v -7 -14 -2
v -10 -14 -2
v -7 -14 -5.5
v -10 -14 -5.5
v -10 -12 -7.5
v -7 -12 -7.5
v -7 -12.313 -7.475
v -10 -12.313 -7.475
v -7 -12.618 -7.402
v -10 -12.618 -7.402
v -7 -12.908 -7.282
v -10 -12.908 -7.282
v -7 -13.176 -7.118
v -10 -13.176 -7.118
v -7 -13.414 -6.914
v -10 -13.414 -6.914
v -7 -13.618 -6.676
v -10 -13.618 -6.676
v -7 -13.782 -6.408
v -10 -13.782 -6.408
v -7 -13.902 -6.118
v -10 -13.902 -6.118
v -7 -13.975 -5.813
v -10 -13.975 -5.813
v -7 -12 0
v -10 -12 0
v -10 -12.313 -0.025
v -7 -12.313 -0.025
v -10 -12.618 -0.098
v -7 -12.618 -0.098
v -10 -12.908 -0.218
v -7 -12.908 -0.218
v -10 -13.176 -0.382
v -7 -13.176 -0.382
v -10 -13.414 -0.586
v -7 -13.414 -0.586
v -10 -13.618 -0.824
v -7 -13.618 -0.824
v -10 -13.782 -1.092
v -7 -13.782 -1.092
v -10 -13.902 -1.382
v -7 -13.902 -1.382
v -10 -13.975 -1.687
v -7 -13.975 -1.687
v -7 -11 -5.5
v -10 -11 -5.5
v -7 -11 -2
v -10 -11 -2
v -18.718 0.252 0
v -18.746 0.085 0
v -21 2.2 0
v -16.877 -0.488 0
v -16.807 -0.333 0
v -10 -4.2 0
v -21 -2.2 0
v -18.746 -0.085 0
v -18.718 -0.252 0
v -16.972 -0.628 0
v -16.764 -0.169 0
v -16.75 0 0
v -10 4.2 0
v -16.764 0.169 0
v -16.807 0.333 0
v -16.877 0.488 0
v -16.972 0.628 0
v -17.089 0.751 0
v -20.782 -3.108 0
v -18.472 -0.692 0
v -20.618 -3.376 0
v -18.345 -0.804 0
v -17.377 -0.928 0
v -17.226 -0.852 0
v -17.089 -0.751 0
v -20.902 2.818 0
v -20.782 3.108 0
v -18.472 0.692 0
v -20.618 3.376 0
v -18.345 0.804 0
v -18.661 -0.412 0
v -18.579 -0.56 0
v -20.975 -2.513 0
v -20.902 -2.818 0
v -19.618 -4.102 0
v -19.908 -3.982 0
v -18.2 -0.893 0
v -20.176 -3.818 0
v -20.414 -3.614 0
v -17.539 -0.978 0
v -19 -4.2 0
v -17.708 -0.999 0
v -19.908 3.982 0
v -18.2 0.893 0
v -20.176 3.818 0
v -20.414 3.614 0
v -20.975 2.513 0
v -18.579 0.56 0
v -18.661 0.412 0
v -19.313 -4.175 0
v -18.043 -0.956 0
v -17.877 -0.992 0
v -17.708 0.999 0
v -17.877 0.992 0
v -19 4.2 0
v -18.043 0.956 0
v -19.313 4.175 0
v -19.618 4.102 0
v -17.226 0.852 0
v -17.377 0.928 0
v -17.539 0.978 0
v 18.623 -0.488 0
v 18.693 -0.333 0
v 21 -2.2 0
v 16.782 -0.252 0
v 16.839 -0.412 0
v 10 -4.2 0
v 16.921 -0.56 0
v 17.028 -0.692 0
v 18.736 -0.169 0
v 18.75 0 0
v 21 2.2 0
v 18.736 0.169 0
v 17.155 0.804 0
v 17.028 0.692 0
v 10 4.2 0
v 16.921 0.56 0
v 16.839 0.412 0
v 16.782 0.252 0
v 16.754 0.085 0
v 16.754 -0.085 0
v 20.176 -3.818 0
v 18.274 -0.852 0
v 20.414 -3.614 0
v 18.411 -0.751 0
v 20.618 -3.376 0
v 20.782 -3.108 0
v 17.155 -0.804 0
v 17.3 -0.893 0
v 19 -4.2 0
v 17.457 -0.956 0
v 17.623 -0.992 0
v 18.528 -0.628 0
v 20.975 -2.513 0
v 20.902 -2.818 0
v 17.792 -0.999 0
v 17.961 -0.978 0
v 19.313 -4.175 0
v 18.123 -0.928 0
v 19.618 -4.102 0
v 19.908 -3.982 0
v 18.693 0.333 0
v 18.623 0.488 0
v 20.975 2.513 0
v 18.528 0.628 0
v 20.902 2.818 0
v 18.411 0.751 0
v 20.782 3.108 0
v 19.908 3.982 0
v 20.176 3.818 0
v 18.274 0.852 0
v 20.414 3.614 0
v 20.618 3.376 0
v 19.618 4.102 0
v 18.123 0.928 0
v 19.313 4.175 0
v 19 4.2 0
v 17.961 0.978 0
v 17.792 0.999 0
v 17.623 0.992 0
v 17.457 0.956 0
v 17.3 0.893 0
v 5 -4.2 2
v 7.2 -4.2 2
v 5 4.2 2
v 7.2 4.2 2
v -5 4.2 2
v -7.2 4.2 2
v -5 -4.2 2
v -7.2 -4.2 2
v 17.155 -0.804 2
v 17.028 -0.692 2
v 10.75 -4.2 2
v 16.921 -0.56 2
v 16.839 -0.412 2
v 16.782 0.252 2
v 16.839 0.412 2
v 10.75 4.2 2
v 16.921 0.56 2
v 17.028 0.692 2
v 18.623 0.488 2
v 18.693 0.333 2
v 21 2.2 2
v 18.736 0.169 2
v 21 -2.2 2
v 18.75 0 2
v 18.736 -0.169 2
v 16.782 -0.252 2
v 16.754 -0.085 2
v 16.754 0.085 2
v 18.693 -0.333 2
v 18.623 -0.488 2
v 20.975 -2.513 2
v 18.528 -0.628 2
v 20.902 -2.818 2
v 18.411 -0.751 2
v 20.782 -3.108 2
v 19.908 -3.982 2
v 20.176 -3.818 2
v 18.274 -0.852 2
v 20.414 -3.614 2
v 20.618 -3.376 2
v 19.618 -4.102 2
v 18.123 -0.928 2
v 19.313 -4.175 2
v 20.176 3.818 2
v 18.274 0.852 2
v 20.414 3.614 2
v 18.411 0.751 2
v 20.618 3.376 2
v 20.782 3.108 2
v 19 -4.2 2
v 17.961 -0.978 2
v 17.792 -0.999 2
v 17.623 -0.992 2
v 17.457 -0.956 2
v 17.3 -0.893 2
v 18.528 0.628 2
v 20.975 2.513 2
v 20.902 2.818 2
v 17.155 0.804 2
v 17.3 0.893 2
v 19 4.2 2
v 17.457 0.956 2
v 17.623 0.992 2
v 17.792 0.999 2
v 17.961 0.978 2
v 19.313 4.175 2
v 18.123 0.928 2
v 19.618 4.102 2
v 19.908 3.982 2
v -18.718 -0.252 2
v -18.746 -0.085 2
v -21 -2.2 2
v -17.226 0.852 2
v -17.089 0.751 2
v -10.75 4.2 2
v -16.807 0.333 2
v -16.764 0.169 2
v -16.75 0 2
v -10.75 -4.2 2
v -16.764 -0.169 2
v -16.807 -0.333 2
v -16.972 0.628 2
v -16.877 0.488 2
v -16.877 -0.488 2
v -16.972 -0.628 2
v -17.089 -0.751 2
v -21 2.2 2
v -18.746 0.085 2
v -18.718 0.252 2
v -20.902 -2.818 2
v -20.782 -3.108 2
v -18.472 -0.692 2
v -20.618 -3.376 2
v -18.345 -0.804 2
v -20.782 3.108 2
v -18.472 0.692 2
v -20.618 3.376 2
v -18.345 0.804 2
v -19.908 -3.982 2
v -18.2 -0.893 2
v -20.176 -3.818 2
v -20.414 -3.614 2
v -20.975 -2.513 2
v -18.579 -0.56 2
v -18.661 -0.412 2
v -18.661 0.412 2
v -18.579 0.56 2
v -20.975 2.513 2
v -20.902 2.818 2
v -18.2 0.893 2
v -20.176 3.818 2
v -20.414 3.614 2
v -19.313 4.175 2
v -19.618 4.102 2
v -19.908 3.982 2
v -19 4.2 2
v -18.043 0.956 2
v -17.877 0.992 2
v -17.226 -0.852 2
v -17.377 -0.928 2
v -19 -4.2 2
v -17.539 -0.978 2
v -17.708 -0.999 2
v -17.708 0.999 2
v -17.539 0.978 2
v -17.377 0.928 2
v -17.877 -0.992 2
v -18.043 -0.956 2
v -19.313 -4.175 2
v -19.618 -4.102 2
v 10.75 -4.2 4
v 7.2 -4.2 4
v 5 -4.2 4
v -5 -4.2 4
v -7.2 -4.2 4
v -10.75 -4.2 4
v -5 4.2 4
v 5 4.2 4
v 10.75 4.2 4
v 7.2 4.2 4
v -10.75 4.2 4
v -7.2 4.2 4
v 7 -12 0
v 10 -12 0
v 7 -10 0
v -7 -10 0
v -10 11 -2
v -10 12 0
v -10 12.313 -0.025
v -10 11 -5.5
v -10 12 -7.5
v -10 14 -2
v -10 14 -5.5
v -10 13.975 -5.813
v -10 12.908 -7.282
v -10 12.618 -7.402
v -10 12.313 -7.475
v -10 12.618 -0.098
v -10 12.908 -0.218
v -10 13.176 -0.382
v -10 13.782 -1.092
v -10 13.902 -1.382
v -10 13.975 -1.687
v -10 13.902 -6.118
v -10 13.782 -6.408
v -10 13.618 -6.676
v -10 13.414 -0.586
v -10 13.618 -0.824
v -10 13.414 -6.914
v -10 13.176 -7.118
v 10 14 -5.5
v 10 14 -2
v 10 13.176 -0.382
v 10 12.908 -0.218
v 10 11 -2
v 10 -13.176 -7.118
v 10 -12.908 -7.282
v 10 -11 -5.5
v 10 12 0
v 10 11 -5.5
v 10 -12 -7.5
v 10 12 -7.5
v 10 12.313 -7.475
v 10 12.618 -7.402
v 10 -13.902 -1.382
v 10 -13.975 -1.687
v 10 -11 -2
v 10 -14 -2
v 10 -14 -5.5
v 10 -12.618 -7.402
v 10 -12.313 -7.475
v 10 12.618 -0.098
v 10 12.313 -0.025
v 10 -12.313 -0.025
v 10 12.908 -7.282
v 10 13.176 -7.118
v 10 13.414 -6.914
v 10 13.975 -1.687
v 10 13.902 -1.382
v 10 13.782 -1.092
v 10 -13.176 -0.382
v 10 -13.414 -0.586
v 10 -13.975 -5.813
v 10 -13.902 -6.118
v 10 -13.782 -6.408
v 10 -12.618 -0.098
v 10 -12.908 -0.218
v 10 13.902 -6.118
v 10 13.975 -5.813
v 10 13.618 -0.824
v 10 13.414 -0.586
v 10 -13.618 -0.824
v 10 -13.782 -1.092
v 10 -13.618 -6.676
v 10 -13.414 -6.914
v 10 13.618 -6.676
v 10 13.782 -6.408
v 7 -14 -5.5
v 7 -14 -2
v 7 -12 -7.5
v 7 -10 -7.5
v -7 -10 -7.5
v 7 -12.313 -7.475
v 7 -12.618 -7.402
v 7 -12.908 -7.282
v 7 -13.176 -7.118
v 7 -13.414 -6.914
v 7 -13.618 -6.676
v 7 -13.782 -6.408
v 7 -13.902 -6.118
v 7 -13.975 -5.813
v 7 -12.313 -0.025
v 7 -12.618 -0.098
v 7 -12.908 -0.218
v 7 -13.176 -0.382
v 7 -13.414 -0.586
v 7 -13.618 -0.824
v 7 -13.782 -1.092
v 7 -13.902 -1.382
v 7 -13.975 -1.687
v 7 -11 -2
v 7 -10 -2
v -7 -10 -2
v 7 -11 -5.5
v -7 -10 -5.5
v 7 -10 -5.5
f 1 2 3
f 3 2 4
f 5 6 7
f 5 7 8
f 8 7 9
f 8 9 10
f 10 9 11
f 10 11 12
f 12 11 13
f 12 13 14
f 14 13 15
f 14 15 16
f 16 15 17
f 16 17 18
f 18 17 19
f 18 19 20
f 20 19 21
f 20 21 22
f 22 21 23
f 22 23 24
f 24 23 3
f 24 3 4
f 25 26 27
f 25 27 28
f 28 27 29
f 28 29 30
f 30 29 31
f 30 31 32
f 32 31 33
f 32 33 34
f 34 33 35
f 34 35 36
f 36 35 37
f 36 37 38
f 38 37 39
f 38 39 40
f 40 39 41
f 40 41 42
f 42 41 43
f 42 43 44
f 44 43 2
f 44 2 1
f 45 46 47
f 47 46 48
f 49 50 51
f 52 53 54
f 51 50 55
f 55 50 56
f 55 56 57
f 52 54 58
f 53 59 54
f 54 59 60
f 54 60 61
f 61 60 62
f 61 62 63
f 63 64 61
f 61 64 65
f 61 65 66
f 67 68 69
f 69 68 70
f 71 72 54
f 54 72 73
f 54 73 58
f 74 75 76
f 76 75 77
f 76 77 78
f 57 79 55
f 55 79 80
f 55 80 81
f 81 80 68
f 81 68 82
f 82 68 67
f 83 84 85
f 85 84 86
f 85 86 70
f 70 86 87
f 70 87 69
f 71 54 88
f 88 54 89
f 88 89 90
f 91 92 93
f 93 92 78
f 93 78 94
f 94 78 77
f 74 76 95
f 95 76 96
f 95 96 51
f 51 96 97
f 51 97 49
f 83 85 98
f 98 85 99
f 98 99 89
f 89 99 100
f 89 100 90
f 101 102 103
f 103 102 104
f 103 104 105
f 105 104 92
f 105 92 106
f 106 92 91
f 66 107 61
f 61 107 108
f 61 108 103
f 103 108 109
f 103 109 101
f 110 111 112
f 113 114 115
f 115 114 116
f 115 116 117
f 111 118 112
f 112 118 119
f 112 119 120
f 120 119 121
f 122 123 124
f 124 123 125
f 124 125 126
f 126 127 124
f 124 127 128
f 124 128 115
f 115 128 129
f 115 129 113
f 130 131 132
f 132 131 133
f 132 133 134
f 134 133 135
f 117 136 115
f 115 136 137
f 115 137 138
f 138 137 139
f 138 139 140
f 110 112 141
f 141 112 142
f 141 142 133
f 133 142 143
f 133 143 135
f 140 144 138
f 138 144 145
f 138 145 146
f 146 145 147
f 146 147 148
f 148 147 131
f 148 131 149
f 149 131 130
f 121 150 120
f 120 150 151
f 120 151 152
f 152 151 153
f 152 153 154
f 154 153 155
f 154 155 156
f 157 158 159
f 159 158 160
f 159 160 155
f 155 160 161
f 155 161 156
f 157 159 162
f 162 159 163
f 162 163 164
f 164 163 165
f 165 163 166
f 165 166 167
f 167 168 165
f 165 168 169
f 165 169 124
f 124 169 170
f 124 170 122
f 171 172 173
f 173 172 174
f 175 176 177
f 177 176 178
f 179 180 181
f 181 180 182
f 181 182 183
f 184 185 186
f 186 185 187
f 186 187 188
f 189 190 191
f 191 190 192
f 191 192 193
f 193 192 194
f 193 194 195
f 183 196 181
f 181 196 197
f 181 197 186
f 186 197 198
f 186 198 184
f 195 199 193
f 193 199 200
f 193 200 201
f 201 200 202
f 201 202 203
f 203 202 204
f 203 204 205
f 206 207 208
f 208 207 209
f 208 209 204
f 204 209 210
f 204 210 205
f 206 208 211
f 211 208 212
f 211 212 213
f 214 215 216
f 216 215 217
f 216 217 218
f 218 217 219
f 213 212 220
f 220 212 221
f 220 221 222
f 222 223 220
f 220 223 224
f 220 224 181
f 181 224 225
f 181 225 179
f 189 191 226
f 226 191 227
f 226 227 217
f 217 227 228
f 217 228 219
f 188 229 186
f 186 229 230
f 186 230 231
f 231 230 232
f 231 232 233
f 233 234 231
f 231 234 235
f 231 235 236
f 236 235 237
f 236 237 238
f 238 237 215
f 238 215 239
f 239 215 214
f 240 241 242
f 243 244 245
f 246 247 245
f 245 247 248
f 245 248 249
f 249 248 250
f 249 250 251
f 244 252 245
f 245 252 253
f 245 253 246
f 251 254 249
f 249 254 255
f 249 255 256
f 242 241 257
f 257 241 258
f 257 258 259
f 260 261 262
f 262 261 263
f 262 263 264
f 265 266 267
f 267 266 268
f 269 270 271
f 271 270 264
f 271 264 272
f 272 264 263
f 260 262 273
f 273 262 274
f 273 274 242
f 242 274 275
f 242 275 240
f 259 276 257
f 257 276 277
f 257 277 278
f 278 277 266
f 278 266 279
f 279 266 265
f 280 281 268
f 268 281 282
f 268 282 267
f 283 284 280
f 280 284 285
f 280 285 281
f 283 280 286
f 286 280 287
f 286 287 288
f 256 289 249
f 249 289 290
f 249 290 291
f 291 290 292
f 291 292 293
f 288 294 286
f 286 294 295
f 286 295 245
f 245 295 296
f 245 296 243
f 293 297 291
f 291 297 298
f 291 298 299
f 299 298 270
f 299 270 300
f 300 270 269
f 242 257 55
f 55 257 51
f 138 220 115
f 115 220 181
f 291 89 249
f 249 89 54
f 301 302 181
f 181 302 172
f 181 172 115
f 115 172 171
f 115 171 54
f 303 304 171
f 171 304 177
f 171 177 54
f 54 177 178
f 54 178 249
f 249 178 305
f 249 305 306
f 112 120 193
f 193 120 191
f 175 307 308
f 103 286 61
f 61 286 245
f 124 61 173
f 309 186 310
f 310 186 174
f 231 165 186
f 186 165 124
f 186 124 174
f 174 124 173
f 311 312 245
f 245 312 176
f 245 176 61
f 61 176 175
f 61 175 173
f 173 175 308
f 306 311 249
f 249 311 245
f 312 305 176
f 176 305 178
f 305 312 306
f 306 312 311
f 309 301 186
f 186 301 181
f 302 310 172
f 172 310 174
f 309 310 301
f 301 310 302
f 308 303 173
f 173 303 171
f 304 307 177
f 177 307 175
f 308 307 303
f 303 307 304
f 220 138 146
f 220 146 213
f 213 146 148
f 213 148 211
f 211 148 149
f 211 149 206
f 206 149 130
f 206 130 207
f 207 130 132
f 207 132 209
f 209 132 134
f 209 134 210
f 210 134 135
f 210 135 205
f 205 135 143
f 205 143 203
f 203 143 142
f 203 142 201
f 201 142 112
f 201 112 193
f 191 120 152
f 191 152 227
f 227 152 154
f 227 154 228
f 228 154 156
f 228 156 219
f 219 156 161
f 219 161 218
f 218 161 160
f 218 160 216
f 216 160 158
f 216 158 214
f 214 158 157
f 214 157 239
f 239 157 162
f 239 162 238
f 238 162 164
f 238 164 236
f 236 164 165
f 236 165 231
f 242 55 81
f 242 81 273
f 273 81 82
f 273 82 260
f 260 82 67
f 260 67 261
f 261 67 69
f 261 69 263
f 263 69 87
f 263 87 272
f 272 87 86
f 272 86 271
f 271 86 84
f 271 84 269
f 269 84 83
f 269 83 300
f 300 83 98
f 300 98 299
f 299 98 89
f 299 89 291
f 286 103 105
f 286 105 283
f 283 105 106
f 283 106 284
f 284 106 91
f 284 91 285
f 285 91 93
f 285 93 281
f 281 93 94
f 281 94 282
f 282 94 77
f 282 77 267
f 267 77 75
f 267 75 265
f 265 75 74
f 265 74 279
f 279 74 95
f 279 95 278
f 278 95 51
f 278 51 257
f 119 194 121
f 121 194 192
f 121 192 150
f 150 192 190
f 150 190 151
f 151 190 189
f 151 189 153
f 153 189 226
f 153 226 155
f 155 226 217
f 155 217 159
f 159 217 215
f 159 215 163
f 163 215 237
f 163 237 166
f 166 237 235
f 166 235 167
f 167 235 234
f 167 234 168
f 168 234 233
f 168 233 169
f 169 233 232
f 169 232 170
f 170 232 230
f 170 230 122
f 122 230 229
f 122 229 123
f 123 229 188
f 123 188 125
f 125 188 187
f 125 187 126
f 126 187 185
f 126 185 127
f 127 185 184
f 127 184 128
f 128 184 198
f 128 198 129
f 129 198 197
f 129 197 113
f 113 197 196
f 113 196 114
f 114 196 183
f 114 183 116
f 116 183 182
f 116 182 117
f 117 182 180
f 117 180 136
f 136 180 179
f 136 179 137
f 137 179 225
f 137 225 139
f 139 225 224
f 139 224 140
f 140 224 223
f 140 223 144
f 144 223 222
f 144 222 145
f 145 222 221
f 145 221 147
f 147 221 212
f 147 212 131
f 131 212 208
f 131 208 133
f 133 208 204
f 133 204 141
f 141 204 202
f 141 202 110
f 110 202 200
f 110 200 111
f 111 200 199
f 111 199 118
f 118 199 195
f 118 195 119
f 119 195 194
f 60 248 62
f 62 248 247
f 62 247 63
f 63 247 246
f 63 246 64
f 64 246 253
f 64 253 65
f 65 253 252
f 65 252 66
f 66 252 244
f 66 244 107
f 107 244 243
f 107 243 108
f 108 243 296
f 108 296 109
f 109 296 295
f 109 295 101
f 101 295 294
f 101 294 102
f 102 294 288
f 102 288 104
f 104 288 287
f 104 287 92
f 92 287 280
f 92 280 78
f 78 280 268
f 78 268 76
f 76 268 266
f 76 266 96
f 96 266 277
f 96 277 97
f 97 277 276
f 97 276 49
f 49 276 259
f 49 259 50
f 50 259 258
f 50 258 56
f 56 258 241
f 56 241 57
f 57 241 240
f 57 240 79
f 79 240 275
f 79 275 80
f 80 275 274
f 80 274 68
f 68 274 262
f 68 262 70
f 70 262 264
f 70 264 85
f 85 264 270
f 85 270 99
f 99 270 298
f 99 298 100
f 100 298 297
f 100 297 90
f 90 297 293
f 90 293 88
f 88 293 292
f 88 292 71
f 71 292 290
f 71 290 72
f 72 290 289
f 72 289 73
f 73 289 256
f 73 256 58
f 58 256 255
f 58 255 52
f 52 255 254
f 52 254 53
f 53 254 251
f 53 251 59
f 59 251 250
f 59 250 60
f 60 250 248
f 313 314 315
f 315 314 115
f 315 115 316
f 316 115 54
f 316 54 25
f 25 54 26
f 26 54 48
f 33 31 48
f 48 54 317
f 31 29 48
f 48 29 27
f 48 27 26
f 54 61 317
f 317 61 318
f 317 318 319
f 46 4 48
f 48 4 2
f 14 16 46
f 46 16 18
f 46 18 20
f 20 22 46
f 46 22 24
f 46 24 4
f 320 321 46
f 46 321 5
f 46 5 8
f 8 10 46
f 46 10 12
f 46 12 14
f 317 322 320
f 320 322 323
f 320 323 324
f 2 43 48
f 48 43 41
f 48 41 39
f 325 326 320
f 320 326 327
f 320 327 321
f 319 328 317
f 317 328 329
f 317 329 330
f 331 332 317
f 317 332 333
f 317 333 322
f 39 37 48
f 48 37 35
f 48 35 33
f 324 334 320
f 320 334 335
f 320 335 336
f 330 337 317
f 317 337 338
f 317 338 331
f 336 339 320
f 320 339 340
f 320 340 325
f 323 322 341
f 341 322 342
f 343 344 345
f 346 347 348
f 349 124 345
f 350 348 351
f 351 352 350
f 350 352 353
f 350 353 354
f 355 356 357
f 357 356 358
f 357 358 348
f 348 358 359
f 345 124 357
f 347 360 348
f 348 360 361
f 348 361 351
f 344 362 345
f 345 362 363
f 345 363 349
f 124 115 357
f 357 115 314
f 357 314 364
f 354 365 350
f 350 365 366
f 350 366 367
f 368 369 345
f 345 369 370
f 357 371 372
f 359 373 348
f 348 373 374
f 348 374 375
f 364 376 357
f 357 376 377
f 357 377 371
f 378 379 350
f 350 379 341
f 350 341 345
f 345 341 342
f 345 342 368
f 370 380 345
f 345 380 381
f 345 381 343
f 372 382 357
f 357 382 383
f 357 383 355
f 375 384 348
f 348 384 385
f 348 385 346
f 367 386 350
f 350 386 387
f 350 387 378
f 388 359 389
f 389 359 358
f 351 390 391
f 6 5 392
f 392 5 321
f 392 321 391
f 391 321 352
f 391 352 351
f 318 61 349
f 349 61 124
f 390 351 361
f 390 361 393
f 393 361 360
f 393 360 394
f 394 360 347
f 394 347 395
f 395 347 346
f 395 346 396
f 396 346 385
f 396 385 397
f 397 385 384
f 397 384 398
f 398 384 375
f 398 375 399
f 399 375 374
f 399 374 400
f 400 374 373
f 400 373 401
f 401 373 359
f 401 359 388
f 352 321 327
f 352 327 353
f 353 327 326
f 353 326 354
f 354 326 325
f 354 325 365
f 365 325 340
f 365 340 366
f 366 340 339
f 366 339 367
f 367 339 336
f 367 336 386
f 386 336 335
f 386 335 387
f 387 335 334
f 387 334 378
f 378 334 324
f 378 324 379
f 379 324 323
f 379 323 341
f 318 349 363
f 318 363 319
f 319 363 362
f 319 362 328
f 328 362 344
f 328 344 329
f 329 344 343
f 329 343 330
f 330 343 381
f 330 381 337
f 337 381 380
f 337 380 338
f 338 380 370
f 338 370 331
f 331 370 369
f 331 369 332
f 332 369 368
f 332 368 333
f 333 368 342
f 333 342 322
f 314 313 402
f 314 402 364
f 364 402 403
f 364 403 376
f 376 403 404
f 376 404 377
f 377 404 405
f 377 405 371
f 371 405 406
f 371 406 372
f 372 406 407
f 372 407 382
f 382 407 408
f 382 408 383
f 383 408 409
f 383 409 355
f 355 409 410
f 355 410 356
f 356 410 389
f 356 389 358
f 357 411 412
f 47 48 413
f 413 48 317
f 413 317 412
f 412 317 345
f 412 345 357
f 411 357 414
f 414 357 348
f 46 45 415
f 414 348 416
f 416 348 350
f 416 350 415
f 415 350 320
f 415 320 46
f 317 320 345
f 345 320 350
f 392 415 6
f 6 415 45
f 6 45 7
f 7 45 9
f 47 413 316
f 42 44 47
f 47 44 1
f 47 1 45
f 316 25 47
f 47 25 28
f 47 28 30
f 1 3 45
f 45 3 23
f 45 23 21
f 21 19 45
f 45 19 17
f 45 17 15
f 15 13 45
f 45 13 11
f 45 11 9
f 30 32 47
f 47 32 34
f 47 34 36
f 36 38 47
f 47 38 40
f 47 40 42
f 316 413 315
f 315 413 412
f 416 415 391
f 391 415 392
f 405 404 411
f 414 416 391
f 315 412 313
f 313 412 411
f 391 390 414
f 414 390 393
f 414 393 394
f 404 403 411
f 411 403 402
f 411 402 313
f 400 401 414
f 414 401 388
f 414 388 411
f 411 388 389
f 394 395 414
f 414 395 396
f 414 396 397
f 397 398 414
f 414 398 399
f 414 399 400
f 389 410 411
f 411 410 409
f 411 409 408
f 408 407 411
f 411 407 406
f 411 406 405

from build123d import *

# Parameters (mm, degrees)
SKETCH2_W           = 42
SKETCH2_H           = 8.4
BOSS_EXTRUDE1_DEPTH = 2
SKETCH3_W           = 3.55
SKETCH3_H           = 8.4
SKETCH3_W_2         = 10
BOSS_EXTRUDE2_DEPTH = 2
FILLET1_R           = 2
SKETCH4_R           = 1
CUT_EXTRUDE1_DEPTH  = 2
SKETCH5_W           = 20
SKETCH5_H           = 28
BOSS_EXTRUDE3_DEPTH = 7.5
FILLET2_R           = 2
SKETCH6_W           = 3.5
SKETCH6_H           = 22
CUT_EXTRUDE2_DEPTH  = 20
SKETCH7_W           = 14
SKETCH7_H           = 4
CUT_EXTRUDE3_DEPTH  = 10


with BuildPart() as part:
    # Sketch2 → Boss-Extrude1 (new body)
    with BuildSketch(Plane.XY):
        Rectangle(SKETCH2_W, SKETCH2_H)
    extrude(amount=BOSS_EXTRUDE1_DEPTH)

    # Sketch3 → Boss-Extrude2 (add)
    with BuildSketch(Plane.XY.offset(2)):
        with Locations((-8.975, 0)):
            Rectangle(SKETCH3_W, SKETCH3_H)
        with Locations((8.975, 0)):
            Rectangle(SKETCH3_W, SKETCH3_H)
        Rectangle(SKETCH3_W_2, SKETCH3_H)
    extrude(amount=BOSS_EXTRUDE2_DEPTH)

    # Fillet1
    fillet1_edges = [part.edges().sort_by_distance(p)[0] for p in [
        (-21, 4.2, 1),
        (21, 4.2, 1),
        (21, -4.2, 1),
        (-21, -4.2, 1),
    ]]
    fillet(fillet1_edges, radius=FILLET1_R)

    # Sketch4 → Cut-Extrude1 (cut)
    with BuildSketch(Plane.XY.offset(2)):
        with Locations((-17.75, 0)):
            Circle(SKETCH4_R)
        with Locations((17.75, 0)):
            Circle(SKETCH4_R)
    extrude(amount=-CUT_EXTRUDE1_DEPTH, mode=Mode.SUBTRACT)

    # Sketch5 → Boss-Extrude3 (add)
    with BuildSketch(Plane(origin=(0, 0, 0), x_dir=(-1, 0, 0), z_dir=(0, 0, -1))):
        Rectangle(SKETCH5_W, SKETCH5_H)
    extrude(amount=BOSS_EXTRUDE3_DEPTH)

    # Fillet2
    fillet2_edges = [part.edges().sort_by_distance(p)[0] for p in [
        (0, 14, 0),
        (0, -14, 0),
        (0, 14, -7.5),
        (0, -14, -7.5),
    ]]
    fillet(fillet2_edges, radius=FILLET2_R)

    # Sketch6 → Cut-Extrude2 (cut)
    with BuildSketch(Plane.ZY.offset(10)):
        with Locations((-3.75, 0)):
            Rectangle(SKETCH6_W, SKETCH6_H)
    extrude(amount=-CUT_EXTRUDE2_DEPTH, mode=Mode.SUBTRACT)

    # Sketch7 → Cut-Extrude3 (cut)
    with BuildSketch(Plane.XY):
        with Locations((0, -12)):
            Rectangle(SKETCH7_W, SKETCH7_H)
    extrude(amount=-CUT_EXTRUDE3_DEPTH, mode=Mode.SUBTRACT)


solid = part.part
